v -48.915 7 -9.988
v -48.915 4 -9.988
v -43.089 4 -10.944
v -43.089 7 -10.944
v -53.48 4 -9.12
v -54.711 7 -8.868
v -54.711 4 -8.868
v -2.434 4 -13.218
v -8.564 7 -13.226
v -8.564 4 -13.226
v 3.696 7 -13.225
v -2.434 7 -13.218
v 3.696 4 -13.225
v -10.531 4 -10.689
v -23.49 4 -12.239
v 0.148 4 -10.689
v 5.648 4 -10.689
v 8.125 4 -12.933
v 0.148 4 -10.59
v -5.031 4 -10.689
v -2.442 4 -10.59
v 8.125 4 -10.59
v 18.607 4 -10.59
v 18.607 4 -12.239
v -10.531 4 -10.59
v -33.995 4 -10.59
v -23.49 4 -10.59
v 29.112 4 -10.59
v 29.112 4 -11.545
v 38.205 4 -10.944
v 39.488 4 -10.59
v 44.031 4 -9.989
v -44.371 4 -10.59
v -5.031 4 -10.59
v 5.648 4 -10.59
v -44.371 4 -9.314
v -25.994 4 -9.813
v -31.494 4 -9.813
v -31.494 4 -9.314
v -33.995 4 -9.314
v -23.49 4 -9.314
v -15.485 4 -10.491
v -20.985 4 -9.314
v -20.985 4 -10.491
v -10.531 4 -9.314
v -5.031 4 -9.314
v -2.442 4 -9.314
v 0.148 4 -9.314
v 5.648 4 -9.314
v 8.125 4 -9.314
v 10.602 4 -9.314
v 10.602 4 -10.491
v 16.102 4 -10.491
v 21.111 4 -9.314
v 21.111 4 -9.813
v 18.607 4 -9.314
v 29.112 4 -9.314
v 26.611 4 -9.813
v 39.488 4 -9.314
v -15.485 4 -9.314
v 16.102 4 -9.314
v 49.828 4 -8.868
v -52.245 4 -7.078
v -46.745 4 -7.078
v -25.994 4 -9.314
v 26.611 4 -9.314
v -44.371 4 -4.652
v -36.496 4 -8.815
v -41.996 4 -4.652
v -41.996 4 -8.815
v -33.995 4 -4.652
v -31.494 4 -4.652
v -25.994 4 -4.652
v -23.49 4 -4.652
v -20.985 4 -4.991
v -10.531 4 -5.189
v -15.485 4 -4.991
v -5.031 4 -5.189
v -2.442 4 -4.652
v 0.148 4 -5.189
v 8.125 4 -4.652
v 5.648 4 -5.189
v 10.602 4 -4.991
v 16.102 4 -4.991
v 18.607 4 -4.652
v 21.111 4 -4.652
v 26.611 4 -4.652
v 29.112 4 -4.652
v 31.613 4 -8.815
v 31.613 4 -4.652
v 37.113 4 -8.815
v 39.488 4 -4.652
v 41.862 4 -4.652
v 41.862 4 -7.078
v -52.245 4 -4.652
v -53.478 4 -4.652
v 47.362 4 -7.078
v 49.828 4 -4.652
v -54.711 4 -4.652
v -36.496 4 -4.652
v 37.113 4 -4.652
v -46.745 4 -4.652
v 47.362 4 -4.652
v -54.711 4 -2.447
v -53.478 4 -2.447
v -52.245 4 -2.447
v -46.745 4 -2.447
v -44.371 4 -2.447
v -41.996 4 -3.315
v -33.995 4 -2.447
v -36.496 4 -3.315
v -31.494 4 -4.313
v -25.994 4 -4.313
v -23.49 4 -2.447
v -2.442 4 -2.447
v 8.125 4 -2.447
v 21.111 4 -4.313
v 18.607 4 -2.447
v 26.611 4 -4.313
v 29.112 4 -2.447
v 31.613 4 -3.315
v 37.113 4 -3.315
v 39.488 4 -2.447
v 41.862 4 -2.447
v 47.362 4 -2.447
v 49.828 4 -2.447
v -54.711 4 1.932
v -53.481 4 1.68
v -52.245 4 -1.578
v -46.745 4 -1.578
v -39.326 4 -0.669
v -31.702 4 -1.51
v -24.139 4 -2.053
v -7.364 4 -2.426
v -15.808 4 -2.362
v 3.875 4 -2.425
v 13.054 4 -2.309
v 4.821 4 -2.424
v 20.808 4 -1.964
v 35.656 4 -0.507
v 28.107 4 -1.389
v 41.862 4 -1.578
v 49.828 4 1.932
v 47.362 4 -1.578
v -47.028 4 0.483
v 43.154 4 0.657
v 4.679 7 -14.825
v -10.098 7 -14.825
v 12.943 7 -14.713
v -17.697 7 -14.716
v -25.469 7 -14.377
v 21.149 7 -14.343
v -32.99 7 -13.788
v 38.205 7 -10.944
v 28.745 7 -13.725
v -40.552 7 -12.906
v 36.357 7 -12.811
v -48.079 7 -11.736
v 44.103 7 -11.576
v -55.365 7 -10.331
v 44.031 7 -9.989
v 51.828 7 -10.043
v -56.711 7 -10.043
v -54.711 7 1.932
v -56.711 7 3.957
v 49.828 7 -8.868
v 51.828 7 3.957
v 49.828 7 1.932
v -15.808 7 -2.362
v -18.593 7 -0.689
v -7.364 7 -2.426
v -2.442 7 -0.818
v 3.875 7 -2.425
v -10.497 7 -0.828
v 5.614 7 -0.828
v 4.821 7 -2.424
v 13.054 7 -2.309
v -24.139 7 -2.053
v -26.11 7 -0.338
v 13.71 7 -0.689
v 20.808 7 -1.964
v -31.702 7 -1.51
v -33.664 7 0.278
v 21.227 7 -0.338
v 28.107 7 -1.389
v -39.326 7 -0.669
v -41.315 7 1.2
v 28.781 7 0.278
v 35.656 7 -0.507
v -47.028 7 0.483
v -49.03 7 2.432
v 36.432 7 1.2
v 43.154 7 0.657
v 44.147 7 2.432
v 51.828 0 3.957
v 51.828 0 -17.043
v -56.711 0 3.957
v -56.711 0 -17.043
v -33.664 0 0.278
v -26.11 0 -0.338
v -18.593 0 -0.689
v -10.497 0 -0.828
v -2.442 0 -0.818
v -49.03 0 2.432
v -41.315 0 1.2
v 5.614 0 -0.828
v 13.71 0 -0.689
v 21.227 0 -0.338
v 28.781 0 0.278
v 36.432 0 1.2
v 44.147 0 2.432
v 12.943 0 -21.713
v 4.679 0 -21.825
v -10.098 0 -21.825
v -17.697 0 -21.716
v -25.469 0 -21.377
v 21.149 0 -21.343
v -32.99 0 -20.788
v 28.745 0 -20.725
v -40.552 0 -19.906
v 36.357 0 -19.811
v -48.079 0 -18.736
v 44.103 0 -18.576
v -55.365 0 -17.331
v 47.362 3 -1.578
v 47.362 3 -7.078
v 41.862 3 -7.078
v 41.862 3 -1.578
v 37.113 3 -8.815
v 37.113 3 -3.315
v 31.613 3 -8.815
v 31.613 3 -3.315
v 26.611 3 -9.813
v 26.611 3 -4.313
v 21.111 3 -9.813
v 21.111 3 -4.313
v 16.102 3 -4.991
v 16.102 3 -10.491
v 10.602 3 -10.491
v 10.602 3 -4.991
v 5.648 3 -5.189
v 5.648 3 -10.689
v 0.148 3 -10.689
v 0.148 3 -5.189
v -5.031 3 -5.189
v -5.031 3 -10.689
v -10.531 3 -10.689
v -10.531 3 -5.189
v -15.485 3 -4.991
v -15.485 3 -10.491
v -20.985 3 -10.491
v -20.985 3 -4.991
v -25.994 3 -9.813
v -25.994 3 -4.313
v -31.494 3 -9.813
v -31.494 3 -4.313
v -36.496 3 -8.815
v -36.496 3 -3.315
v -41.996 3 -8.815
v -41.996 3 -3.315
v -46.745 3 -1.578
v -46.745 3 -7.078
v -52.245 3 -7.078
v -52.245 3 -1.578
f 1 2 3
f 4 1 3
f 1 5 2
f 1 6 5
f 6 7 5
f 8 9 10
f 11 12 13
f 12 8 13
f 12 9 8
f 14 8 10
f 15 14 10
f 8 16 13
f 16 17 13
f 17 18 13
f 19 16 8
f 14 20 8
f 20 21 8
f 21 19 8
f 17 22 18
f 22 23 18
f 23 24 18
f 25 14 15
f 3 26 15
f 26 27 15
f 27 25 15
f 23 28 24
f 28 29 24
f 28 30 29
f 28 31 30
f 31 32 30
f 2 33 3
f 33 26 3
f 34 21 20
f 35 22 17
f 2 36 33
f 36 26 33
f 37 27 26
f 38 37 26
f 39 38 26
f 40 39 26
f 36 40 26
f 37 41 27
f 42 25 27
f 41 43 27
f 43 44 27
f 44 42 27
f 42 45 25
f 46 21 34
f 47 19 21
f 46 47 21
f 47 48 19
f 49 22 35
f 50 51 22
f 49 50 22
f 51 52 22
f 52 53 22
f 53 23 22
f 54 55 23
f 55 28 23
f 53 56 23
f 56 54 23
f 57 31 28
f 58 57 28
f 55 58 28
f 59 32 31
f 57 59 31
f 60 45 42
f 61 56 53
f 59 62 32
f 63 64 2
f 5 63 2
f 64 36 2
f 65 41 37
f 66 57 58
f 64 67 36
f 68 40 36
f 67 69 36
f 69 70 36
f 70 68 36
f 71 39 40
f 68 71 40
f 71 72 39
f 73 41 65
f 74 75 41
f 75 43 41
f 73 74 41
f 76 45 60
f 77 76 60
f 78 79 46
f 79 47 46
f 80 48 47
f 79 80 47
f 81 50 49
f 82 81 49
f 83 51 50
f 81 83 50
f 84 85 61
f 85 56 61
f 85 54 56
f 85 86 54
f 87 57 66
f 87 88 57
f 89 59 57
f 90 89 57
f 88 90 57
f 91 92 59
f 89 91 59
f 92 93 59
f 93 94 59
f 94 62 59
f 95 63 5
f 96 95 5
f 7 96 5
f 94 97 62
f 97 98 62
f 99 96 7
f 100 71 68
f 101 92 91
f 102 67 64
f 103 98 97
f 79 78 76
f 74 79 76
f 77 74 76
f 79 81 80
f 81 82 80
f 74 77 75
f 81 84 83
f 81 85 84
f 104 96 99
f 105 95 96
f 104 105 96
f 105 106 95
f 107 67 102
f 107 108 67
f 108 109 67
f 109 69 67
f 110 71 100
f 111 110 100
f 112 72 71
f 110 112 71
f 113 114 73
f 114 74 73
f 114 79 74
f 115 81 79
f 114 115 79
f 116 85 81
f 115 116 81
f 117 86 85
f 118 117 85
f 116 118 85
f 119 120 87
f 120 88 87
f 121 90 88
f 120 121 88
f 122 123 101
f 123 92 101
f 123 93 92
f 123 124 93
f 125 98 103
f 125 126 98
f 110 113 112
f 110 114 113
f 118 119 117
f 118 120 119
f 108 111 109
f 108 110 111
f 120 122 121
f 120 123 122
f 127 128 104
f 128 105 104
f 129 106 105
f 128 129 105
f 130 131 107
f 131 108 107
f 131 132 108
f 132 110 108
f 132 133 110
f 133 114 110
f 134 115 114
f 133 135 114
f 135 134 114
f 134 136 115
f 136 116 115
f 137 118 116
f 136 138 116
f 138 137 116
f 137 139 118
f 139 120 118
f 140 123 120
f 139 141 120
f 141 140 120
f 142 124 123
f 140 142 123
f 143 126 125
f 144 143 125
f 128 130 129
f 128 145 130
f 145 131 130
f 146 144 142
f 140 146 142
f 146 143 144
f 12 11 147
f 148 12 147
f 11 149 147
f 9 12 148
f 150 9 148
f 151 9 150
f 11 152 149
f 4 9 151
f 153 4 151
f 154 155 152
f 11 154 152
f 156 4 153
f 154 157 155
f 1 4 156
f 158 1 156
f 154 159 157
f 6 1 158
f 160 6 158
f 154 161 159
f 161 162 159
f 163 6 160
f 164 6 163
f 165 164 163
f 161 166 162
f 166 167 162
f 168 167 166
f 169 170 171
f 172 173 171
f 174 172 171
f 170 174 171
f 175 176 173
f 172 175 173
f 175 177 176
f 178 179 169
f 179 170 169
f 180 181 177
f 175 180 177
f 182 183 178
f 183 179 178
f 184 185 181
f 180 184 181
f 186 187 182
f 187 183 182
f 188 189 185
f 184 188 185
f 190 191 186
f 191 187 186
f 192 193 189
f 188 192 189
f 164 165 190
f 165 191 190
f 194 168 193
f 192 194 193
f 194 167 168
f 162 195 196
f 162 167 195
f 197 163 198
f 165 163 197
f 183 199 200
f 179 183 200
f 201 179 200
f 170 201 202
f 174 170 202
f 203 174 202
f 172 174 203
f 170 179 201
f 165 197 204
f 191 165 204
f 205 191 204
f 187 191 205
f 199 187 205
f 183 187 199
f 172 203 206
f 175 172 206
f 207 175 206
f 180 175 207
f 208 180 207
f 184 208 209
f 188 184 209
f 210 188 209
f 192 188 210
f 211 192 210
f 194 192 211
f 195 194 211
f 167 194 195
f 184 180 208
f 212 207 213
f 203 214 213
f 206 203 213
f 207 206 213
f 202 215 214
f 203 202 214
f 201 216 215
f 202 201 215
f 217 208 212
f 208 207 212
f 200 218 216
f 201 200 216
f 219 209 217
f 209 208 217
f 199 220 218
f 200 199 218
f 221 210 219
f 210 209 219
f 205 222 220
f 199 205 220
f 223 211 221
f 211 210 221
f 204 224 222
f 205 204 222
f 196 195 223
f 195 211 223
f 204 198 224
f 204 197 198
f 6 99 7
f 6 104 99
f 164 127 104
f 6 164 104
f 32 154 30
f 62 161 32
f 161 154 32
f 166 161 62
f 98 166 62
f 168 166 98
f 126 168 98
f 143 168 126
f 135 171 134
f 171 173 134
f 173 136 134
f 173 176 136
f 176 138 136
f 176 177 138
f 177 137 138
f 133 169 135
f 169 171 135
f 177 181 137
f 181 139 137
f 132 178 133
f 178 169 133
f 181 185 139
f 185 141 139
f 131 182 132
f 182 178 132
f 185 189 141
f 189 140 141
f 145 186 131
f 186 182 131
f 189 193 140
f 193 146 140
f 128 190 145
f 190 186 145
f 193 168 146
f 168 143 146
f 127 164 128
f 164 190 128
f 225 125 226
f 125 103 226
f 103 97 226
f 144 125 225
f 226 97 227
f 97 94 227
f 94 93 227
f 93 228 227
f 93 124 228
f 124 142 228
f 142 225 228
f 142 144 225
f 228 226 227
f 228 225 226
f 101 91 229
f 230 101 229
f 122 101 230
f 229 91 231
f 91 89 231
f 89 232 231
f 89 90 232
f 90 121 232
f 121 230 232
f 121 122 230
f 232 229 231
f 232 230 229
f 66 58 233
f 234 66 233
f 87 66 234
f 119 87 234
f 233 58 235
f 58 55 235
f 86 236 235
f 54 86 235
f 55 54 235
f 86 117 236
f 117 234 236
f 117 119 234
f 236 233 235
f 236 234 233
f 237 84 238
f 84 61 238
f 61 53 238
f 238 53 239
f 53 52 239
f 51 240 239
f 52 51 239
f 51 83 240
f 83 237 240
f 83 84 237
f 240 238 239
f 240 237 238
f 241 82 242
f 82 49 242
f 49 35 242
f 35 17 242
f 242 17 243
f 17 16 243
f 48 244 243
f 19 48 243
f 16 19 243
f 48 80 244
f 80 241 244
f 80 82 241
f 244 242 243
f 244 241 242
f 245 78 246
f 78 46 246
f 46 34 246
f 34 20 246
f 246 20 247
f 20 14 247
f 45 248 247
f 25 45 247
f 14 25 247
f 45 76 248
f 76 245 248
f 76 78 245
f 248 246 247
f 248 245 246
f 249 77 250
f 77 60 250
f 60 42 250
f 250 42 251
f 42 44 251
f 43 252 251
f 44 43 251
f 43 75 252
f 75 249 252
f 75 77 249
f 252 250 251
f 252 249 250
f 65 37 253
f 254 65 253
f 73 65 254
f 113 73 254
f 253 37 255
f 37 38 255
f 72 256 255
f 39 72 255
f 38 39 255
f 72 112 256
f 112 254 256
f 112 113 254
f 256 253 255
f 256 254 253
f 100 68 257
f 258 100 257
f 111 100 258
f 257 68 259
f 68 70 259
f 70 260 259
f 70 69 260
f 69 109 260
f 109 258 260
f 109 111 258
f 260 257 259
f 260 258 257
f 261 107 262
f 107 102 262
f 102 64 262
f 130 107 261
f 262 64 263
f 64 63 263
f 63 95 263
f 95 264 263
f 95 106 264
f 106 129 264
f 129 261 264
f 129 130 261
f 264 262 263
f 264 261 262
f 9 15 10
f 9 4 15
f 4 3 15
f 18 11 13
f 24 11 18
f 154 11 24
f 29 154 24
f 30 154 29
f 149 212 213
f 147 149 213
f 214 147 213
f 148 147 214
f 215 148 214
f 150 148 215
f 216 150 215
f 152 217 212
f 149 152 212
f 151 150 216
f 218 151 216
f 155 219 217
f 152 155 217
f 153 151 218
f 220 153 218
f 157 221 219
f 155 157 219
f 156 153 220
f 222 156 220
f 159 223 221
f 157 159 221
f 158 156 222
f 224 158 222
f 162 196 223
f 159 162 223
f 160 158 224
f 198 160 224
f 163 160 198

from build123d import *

# Parameters (mm, degrees)
BOSS_EXTRUDE1_DEPTH     = 7
CUT_EXTRUDE1_DEPTH      = 3
CUT_EXTRUDE2_DEPTH      = 59.755326779
CUT_EXTRUDE2_DEPTH_BACK = 1
SKETCH5_W               = 5.5
SKETCH5_H               = 5.5
BOSS_EXTRUDE2_DEPTH     = 7
CUT_LOFT3_START         = -28.140767726
CUT_LOFT3_DEPTH         = 25.989204331


# Read off the part's stored shape, not the designer's step: Cut-Loft3
with BuildPart() as part:
    # Sketch1 → Boss-Extrude1 (new body)
    with BuildSketch(Plane(origin=(0, 0, 0), x_dir=(1, 0, 0), z_dir=(0, 1, 0))):
        with BuildLine():
            Line((-56.7108806, 8.042770274), (-56.7108806, 6.805307476))
            Line((-56.7108806, 6.805307476), (51.827852841, 6.805307476))
            Line((51.827852841, 6.805307476), (51.827852841, 8.042770274))
            add(Edge.make_bspline(
                [(51.827852841, 8.042770274), (43.440678216, 9.870534091), (30.144344491, 11.93787877), (11.99631981, 12.860332352), (2.722791962, 12.844934175), (-2.44151388, 12.817702683)],
                knots=[0, 0, 0, 0, 0.47203113, 0.735860593, 1, 1, 1, 1], degree=3))
            add(Edge.make_bspline(
                [(-56.7108806, 8.042770274), (-48.323705975, 9.870534091), (-35.02737225, 11.93787877), (-16.87934757, 12.860332352), (-7.605819721, 12.844934175), (-2.44151388, 12.817702683)],
                knots=[0, 0, 0, 0, 0.47203113, 0.735860593, 1, 1, 1, 1], degree=3))
        make_face()
        with BuildLine():
            Line((51.827852841, 6.805307476), (-56.7108806, 6.805307476))
            Line((-56.7108806, 6.805307476), (-56.7108806, -1.957229726))
            add(Edge.make_bspline(
                [(-56.7108806, -1.957229726), (-48.323705975, -0.129465909), (-35.02737225, 1.93787877), (-16.87934757, 2.860332352), (-7.605819721, 2.844934175), (-2.44151388, 2.817702683)],
                knots=[0, 0, 0, 0, 0.47203113, 0.735860593, 1, 1, 1, 1], degree=3))
            add(Edge.make_bspline(
                [(51.827852841, -1.957229726), (43.440678216, -0.129465909), (30.144344491, 1.93787877), (11.99631981, 2.860332352), (2.722791962, 2.844934175), (-2.44151388, 2.817702683)],
                knots=[0, 0, 0, 0, 0.47203113, 0.735860593, 1, 1, 1, 1], degree=3))
            Line((51.827852841, -1.957229726), (51.827852841, 6.805307476))
        make_face()
        with BuildLine():
            add(Edge.make_bspline(
                [(-56.7108806, -1.957229726), (-48.323705975, -0.129465909), (-35.02737225, 1.93787877), (-16.87934757, 2.860332352), (-7.605819721, 2.844934175), (-2.44151388, 2.817702683)],
                knots=[0, 0, 0, 0, 0.47203113, 0.735860593, 1, 1, 1, 1], degree=3))
            Line((-56.7108806, -1.957229726), (-56.7108806, -3.957229726))
            add(Edge.make_bspline(
                [(-56.7108806, -3.957229726), (-48.323705975, -2.129465909), (-35.02737225, -0.06212123), (-16.87934757, 0.860332352), (-7.605819721, 0.844934175), (-2.44151388, 0.817702683)],
                knots=[0, 0, 0, 0, 0.47203113, 0.735860593, 1, 1, 1, 1], degree=3))
            add(Edge.make_bspline(
                [(51.827852841, -3.957229726), (43.440678216, -2.129465909), (30.144344491, -0.06212123), (11.99631981, 0.860332352), (2.722791962, 0.844934175), (-2.44151388, 0.817702683)],
                knots=[0, 0, 0, 0, 0.47203113, 0.735860593, 1, 1, 1, 1], degree=3))
            Line((51.827852841, -3.957229726), (51.827852841, -1.957229726))
            add(Edge.make_bspline(
                [(51.827852841, -1.957229726), (43.440678216, -0.129465909), (30.144344491, 1.93787877), (11.99631981, 2.860332352), (2.722791962, 2.844934175), (-2.44151388, 2.817702683)],
                knots=[0, 0, 0, 0, 0.47203113, 0.735860593, 1, 1, 1, 1], degree=3))
        make_face()
        with BuildLine():
            Line((-56.7108806, 10.042770274), (-56.7108806, 8.042770274))
            add(Edge.make_bspline(
                [(-56.7108806, 8.042770274), (-48.323705975, 9.870534091), (-35.02737225, 11.93787877), (-16.87934757, 12.860332352), (-7.605819721, 12.844934175), (-2.44151388, 12.817702683)],
                knots=[0, 0, 0, 0, 0.47203113, 0.735860593, 1, 1, 1, 1], degree=3))
            add(Edge.make_bspline(
                [(51.827852841, 8.042770274), (43.440678216, 9.870534091), (30.144344491, 11.93787877), (11.99631981, 12.860332352), (2.722791962, 12.844934175), (-2.44151388, 12.817702683)],
                knots=[0, 0, 0, 0, 0.47203113, 0.735860593, 1, 1, 1, 1], degree=3))
            Line((51.827852841, 8.042770274), (51.827852841, 10.042770274))
            add(Edge.make_bspline(
                [(51.827852841, 10.042770274), (43.440678216, 11.870534091), (30.144344491, 13.93787877), (11.99631981, 14.860332352), (2.722791962, 14.844934175), (-2.44151388, 14.817702683)],
                knots=[0, 0, 0, 0, 0.47203113, 0.735860593, 1, 1, 1, 1], degree=3))
            add(Edge.make_bspline(
                [(-56.7108806, 10.042770274), (-48.323705975, 11.870534091), (-35.02737225, 13.93787877), (-16.87934757, 14.860332352), (-7.605819721, 14.844934175), (-2.44151388, 14.817702683)],
                knots=[0, 0, 0, 0, 0.47203113, 0.735860593, 1, 1, 1, 1], degree=3))
        make_face()
    extrude(amount=BOSS_EXTRUDE1_DEPTH)

    # Sketch3 → Cut-Extrude1 (cut)
    with BuildSketch(Plane(origin=(0, 7, 0), x_dir=(1, 0, 0), z_dir=(0, 1, 0))):
        with BuildLine():
            Line((-54.7108806, 8.868382777), (-54.7108806, -1.931617223))
            add(Edge.make_bspline(
                [(-54.7108806, -1.931617223), (-49.613724747, -0.872437915), (-41.450567172, 0.513475106), (-30.542278229, 1.675797263), (-21.917454503, 2.210860945), (-12.671997291, 2.467388615), (-2.277076443, 2.389216594), (7.816613622, 2.466322462), (17.198414715, 2.202454548), (25.682964859, 1.677700715), (36.725653994, 0.486844708), (44.753602523, -0.877090687), (49.827852841, -1.931574108)],
                knots=[0.018721889, 0.018721889, 0.018721889, 0.018721889, 0.161718627, 0.245988858, 0.319944032, 0.399040882, 0.499999922, 0.605477206, 0.676291886, 0.757771849, 0.838922396, 0.98127786, 0.98127786, 0.98127786, 0.98127786], degree=3))
            Line((49.827852841, -1.931574108), (49.827852841, 8.868425892))
            add(Edge.make_bspline(
                [(-54.7108806, 8.868382777), (-49.613724747, 9.927562085), (-41.450567172, 11.313475106), (-30.542278229, 12.475797263), (-21.917454503, 13.010860945), (-12.671997291, 13.267388615), (-2.277076443, 13.189216594), (7.816613622, 13.266322462), (17.198414715, 13.002454548), (25.682964859, 12.477700715), (36.725653994, 11.286844708), (44.753602523, 9.922909313), (49.827852841, 8.868425892)],
                knots=[0.018721889, 0.018721889, 0.018721889, 0.018721889, 0.161718627, 0.245988858, 0.319944032, 0.399040882, 0.499999922, 0.605477206, 0.676291886, 0.757771849, 0.838922396, 0.98127786, 0.98127786, 0.98127786, 0.98127786], degree=3))
        make_face()
    extrude(amount=-CUT_EXTRUDE1_DEPTH, mode=Mode.SUBTRACT)

    # Sketch5 → Cut-Extrude2 (cut, two sides: drawn at the far end of the back side and taken through both)
    with BuildSketch(Plane(origin=(0, 4, 0), x_dir=(1, 0, 0), z_dir=(0, 1, 0)).offset(-CUT_EXTRUDE2_DEPTH_BACK)):
        with Locations((-49.494843654, 4.328278982)):
            Rectangle(SKETCH5_W, SKETCH5_H)
        with Locations((-39.246490197, 6.065019164)):
            Rectangle(SKETCH5_W, SKETCH5_H)
        with Locations((-28.744225873, 7.063081882)):
            Rectangle(SKETCH5_W, SKETCH5_H)
        with Locations((-18.235416091, 7.740731917)):
            Rectangle(SKETCH5_W, SKETCH5_H)
        with Locations((-7.78097109, 7.938746568)):
            Rectangle(SKETCH5_W, SKETCH5_H)
        with Locations((2.897943331, 7.938746568)):
            Rectangle(SKETCH5_W, SKETCH5_H)
        with Locations((13.352388332, 7.740731917)):
            Rectangle(SKETCH5_W, SKETCH5_H)
        with Locations((23.861198114, 7.063081882)):
            Rectangle(SKETCH5_W, SKETCH5_H)
        with Locations((34.363462438, 6.065019164)):
            Rectangle(SKETCH5_W, SKETCH5_H)
        with Locations((44.611815895, 4.328278982)):
            Rectangle(SKETCH5_W, SKETCH5_H)
    extrude(amount=CUT_EXTRUDE2_DEPTH + CUT_EXTRUDE2_DEPTH_BACK, mode=Mode.SUBTRACT)

    # Sketch6 → Boss-Extrude2 (add)
    with BuildSketch(Plane.XZ):
        Polygon((-56.7108806, -10.042770274), (-56.7108806, -39.797055232), (51.827852841, -39.797055232), (51.827852841, -10.042770274), (-2.44151388, -13.631270719), align=None)
    extrude(amount=-BOSS_EXTRUDE2_DEPTH)

    # Cut-Loft3 outline → Cut-Loft3 (cut)
    with BuildSketch(Plane(origin=(0, 0, 0), x_dir=(1, 0, 0), z_dir=(0, 0.7071067811865518, 0.7071067811865432)).offset(CUT_LOFT3_START)):
        with BuildLine():
            add(Edge.make_bspline(
                [(51.827852841, 12.051058431), (49.604561047, 12.393258463), (45.142487075, 13.027898019), (38.409103261, 13.825796232), (31.641249387, 14.461164843), (24.84585392, 14.933029584), (18.032893375, 15.237107028), (11.210055122, 15.405236678), (4.384500343, 15.443691251), (-2.441535298, 15.418403963), (-9.267454577, 15.445172671), (-16.093054432, 15.404982103), (-22.915912391, 15.237149433), (-29.728909591, 14.933046954), (-36.524242812, 14.461126298), (-43.292105117, 13.825843609), (-50.025574302, 13.027890419), (-54.487633846, 12.393258899), (-56.7108806, 12.051058431)],
                knots=[0.621766015, 0.621766015, 0.621766015, 0.621766015, 0.645405639, 0.669045263, 0.692684887, 0.716324512, 0.739964136, 0.76360376, 0.787243384, 0.810883008, 0.834522632, 0.858162256, 0.88180188, 0.905441504, 0.929081128, 0.952720752, 0.976360376, 1, 1, 1, 1], degree=3))
            Line((51.827852841, 12.051058431), (51.827852841, 35))
            Line((51.827852841, 35), (-56.7108806, 35))
            Line((-56.7108806, 35), (-56.7108806, 12.051058431))
        make_face()
    extrude(amount=CUT_LOFT3_DEPTH, mode=Mode.SUBTRACT)


solid = part.part
